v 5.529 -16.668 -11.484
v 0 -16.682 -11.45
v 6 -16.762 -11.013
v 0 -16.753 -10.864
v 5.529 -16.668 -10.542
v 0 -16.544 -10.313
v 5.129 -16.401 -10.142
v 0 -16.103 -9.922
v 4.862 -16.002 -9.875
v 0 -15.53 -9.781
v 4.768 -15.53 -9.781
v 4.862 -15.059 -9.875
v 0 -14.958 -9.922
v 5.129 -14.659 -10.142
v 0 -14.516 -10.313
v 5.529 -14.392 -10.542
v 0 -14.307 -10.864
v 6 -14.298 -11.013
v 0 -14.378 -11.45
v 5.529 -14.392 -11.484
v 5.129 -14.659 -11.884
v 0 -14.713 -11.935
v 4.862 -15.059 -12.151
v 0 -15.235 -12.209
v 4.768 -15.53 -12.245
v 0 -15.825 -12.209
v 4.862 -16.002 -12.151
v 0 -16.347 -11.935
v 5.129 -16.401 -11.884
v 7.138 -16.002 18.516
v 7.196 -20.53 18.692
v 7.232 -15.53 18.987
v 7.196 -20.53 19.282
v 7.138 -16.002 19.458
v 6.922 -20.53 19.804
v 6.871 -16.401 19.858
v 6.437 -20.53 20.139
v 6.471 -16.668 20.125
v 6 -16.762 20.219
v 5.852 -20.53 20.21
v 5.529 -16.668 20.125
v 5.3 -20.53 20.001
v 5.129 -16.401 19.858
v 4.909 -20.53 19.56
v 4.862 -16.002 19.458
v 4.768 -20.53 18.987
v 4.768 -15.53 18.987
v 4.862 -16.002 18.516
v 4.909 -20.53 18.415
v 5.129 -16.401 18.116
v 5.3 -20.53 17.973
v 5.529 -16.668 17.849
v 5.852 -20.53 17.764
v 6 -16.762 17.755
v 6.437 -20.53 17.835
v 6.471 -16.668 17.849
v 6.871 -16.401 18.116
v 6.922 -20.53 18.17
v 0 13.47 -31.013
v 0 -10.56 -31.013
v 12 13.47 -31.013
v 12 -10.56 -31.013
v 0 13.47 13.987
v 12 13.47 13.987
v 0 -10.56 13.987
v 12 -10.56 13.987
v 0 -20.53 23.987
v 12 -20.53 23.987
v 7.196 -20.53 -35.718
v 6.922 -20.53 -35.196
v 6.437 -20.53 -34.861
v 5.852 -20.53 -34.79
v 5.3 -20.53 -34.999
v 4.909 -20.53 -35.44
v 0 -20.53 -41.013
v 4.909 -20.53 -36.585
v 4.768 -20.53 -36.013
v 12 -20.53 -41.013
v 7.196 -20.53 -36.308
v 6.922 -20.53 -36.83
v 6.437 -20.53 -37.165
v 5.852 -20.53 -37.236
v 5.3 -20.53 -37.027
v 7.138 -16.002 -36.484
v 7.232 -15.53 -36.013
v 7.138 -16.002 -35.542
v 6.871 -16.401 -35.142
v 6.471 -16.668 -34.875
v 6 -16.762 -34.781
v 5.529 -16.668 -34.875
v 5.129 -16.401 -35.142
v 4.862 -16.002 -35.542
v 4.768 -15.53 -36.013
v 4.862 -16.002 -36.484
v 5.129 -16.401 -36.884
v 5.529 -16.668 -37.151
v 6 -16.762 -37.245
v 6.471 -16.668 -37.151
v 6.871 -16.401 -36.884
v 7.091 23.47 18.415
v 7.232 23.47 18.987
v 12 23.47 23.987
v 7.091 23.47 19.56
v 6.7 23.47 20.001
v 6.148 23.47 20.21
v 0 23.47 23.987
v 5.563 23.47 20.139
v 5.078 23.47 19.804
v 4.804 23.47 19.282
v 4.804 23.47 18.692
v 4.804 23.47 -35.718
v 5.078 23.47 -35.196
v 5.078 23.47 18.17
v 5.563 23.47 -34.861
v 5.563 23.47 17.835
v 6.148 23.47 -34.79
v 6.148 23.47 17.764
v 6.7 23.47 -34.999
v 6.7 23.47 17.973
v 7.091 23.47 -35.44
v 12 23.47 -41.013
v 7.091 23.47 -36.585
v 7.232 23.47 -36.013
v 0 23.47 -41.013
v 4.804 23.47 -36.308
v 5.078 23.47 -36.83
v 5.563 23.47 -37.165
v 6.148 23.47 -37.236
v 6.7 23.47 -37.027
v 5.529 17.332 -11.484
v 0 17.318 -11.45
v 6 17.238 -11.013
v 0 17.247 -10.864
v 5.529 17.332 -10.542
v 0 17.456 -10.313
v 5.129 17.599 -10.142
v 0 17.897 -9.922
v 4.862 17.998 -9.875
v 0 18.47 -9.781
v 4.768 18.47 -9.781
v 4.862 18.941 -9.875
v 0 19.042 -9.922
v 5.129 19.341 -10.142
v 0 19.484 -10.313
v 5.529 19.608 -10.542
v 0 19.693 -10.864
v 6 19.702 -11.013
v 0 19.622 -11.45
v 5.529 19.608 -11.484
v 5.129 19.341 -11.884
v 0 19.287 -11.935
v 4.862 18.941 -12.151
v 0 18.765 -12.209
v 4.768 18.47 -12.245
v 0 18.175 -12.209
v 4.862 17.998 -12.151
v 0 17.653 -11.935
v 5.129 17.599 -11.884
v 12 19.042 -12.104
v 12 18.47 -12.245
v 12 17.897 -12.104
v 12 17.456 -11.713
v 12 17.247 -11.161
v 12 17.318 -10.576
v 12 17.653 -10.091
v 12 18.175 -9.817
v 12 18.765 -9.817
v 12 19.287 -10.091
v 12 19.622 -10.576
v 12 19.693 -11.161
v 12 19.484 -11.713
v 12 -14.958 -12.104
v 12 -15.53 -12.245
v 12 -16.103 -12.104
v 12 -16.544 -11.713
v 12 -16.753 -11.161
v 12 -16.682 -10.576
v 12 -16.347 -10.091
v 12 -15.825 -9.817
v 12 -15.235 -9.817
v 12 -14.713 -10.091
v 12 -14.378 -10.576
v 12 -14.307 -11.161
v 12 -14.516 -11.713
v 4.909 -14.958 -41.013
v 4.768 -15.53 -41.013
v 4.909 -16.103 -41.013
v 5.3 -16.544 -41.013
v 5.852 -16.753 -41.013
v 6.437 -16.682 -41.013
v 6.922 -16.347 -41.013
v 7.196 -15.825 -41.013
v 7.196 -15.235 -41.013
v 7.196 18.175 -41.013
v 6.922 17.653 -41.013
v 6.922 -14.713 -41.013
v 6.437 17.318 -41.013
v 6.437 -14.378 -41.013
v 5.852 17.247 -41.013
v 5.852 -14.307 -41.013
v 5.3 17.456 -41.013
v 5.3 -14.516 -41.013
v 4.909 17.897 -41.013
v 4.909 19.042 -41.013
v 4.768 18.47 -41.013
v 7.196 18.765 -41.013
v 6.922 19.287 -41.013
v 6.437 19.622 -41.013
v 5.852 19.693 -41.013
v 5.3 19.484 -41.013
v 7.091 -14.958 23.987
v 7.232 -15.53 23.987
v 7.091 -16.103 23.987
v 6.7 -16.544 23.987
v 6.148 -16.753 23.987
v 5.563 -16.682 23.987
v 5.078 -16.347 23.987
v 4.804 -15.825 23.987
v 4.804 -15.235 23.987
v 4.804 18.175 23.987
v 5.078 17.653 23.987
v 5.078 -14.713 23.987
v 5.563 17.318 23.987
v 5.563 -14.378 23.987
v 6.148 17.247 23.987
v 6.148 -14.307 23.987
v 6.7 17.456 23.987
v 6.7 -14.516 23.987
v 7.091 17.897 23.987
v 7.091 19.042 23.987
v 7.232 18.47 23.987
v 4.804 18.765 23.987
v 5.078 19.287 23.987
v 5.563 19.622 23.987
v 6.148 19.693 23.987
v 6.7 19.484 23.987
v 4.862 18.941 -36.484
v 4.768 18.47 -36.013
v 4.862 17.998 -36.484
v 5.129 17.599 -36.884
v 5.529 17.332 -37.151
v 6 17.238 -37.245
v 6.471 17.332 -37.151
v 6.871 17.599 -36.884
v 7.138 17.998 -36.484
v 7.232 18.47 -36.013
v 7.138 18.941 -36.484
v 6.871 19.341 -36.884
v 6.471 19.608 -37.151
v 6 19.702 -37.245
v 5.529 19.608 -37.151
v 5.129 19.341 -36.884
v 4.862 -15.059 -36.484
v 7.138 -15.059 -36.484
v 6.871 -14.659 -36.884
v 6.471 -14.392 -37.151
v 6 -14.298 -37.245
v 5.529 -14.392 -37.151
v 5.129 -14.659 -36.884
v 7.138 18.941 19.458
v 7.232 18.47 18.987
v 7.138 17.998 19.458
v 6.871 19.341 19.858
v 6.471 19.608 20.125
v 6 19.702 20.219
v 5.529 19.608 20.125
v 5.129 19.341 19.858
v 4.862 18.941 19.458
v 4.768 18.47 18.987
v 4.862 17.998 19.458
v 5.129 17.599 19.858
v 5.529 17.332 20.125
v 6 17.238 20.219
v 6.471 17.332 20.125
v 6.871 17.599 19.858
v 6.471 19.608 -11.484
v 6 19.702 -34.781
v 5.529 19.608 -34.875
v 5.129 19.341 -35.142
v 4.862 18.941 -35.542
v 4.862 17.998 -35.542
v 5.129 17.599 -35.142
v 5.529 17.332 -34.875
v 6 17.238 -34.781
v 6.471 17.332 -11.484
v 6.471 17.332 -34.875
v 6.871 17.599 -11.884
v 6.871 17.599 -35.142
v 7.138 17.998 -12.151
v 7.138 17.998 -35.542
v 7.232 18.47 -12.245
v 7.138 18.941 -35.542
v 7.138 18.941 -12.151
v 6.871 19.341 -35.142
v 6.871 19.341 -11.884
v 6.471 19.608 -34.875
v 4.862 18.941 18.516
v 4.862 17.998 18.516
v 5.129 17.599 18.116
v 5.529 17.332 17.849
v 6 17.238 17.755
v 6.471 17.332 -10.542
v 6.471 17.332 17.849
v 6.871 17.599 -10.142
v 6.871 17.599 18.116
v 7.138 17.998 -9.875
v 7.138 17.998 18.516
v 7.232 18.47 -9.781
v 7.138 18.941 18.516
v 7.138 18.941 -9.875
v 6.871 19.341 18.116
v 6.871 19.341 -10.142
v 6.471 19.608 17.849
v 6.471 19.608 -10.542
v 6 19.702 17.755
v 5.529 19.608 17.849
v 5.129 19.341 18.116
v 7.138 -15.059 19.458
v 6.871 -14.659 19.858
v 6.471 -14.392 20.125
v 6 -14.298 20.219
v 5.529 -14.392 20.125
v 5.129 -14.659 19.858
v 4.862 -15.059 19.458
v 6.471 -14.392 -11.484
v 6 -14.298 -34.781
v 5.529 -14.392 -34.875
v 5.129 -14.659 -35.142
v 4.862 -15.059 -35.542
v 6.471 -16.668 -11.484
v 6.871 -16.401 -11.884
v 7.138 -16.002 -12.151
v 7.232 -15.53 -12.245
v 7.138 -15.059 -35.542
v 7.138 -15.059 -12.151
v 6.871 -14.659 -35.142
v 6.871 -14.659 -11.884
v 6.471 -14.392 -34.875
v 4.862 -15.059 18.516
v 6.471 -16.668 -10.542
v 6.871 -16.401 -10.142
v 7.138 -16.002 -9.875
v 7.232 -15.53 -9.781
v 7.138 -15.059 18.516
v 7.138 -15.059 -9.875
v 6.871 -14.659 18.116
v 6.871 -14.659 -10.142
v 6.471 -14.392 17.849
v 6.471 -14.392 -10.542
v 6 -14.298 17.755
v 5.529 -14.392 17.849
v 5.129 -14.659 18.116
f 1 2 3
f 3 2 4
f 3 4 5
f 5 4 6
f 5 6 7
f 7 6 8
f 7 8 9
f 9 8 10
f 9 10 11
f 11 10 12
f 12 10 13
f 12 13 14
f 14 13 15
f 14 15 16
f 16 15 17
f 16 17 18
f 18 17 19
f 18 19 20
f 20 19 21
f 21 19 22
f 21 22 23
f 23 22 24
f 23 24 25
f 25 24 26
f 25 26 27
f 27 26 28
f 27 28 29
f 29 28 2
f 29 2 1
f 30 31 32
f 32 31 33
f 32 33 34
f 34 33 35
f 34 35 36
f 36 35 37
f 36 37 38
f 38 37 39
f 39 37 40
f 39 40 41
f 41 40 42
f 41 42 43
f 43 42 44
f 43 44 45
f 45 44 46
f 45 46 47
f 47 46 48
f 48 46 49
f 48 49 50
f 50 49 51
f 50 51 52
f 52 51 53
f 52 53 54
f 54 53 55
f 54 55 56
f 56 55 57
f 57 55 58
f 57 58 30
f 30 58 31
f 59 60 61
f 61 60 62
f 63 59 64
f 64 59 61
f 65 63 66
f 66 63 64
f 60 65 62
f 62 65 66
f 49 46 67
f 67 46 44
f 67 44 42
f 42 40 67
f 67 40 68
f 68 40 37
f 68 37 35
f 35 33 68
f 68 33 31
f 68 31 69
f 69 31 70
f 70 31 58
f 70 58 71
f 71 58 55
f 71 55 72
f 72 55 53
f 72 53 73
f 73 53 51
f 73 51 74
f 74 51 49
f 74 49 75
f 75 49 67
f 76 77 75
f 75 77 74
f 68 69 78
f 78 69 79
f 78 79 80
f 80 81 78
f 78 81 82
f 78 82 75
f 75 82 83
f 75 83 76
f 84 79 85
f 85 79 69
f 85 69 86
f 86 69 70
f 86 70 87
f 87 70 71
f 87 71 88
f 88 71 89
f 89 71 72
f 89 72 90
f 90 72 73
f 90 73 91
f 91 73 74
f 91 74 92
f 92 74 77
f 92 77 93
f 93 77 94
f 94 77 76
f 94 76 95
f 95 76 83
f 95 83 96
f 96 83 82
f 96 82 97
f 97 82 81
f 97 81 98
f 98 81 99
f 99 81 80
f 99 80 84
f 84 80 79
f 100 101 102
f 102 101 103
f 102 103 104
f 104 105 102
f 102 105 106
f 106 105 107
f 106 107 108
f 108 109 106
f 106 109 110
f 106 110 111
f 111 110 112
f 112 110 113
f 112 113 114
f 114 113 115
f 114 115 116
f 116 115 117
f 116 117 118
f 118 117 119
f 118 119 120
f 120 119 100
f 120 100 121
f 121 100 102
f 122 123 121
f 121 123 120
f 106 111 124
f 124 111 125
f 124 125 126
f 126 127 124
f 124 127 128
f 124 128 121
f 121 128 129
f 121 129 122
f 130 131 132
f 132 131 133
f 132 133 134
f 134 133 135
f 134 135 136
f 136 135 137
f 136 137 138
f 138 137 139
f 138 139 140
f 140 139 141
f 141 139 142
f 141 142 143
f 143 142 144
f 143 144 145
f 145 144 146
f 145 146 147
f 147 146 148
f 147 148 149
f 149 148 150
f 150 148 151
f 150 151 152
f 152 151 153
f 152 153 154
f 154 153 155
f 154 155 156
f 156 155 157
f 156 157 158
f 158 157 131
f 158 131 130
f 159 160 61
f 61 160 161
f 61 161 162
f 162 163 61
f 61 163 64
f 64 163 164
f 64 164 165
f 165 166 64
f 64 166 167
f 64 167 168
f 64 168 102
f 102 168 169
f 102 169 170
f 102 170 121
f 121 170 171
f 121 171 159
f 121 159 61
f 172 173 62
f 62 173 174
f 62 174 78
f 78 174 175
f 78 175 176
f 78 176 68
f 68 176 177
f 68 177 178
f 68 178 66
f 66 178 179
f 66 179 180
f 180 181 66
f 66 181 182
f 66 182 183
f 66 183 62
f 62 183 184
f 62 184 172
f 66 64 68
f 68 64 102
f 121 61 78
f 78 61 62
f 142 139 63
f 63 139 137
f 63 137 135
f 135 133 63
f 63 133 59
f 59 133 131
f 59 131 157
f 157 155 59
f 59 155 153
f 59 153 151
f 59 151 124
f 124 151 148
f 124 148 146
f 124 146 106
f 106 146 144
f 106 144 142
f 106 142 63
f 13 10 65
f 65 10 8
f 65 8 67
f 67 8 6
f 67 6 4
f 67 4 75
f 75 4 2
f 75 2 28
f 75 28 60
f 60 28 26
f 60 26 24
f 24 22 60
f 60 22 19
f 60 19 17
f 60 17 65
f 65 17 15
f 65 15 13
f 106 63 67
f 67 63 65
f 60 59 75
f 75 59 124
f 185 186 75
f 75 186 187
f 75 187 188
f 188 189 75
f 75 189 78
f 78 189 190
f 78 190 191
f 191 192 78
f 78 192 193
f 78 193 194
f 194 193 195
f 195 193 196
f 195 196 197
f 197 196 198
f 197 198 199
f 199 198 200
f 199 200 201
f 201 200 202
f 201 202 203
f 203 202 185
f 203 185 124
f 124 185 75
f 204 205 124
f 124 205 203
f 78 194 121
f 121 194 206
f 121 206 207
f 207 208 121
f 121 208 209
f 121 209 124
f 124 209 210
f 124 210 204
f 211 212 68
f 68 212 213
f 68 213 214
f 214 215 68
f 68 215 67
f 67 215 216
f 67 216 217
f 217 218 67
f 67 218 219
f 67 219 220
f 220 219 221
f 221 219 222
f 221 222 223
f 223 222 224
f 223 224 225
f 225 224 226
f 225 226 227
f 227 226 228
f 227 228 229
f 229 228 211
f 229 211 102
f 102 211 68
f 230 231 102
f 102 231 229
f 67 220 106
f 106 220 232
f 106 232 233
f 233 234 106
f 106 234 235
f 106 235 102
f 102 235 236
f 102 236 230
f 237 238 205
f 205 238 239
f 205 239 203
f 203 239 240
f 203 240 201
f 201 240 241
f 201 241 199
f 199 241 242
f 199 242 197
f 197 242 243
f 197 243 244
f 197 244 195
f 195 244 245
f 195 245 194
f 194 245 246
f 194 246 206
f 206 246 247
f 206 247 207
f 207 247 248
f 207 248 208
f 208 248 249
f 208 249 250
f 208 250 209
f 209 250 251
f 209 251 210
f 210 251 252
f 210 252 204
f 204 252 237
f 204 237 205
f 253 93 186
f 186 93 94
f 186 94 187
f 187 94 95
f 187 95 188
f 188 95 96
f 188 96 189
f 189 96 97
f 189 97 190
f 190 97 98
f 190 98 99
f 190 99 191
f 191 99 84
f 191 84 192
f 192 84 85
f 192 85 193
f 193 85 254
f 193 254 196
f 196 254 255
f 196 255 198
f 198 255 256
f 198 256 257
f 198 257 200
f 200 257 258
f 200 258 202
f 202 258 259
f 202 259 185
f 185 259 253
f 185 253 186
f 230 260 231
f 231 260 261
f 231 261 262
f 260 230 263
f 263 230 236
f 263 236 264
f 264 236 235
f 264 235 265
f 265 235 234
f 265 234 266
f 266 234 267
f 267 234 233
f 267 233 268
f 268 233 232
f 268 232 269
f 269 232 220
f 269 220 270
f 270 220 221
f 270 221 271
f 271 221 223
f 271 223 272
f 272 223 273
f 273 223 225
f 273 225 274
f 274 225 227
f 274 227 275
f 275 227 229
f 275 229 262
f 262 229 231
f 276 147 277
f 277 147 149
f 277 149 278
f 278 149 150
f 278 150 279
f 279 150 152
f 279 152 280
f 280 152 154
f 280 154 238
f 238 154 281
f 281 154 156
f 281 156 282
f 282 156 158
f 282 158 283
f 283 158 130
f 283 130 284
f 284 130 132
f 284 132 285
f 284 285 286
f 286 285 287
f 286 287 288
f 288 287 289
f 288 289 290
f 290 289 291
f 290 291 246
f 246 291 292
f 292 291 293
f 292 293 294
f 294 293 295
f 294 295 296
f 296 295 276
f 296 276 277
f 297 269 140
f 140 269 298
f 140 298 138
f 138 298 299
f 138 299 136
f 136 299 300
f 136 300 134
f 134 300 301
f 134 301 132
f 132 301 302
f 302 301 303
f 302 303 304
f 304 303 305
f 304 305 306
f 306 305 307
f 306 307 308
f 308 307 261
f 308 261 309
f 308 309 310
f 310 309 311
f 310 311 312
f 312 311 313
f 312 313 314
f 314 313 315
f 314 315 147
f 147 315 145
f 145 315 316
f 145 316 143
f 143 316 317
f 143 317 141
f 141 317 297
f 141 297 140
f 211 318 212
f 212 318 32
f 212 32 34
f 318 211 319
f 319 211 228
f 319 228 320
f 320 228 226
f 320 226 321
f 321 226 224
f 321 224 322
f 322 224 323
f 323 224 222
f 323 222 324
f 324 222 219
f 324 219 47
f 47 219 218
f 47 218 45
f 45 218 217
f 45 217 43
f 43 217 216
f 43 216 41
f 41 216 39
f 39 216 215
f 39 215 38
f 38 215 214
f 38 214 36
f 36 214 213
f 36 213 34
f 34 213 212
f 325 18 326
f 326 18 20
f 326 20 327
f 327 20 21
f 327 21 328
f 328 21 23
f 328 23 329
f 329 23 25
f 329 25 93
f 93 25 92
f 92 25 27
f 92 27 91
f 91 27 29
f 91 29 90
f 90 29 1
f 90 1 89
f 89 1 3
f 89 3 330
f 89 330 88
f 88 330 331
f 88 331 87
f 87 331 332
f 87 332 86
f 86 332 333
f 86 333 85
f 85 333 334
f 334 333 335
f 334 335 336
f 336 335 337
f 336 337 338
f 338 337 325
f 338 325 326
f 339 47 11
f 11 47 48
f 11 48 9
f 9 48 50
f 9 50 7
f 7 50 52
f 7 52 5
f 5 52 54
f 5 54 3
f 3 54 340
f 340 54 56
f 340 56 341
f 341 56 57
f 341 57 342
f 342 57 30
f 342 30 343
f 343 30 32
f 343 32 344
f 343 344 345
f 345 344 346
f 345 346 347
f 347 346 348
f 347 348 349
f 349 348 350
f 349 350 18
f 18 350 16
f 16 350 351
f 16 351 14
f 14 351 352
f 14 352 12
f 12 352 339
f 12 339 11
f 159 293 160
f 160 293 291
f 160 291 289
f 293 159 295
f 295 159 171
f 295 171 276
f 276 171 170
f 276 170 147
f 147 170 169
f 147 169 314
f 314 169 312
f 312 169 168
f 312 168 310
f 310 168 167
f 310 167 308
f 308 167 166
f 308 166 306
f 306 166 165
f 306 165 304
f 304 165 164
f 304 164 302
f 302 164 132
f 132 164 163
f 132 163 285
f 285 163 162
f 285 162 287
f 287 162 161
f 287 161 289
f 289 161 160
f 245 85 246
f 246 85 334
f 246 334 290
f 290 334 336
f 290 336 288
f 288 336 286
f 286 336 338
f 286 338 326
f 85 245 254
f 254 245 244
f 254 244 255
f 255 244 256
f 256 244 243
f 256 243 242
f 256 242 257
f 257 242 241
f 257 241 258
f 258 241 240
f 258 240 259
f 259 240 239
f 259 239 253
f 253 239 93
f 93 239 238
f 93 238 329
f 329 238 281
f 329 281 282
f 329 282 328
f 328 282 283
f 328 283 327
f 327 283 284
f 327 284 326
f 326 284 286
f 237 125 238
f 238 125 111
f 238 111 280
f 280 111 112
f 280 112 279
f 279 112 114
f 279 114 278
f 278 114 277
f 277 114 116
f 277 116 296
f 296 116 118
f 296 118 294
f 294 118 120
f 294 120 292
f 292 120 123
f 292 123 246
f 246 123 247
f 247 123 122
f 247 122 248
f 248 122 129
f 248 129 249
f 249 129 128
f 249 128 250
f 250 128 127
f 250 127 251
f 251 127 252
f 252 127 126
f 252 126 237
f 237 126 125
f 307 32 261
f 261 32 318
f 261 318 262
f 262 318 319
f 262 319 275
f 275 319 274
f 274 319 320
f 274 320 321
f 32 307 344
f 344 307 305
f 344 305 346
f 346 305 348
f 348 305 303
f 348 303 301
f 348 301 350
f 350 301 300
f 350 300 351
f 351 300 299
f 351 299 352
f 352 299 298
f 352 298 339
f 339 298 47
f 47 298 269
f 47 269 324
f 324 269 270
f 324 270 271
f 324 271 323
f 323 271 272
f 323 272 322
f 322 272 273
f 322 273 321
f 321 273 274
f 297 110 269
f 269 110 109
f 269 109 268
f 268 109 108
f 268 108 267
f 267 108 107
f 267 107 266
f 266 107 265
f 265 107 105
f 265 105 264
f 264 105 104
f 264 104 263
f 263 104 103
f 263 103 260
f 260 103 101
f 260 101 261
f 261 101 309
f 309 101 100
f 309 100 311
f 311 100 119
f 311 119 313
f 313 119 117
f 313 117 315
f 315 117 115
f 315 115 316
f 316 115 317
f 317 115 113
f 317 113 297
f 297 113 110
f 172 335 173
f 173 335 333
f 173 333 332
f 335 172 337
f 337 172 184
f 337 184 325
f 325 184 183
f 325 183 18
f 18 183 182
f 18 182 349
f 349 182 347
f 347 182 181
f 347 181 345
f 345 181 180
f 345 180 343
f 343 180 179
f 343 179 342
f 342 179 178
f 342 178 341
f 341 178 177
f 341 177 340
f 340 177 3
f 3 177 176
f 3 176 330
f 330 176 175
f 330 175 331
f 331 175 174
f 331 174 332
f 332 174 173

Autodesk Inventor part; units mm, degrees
ref_plane "YZ Plane" through (0, 0, 0) normal (1, 0, 0) x (0, 1, 0)
ref_plane "XZ Plane" through (0, 0, 0) normal (0, 1, 0) x (-1, 0, 0)
ref_plane "XY Plane" through (0, 0, 0) normal (0, 0, 1) x (1, 0, 0)
sketch "Sketch1" plane through (0, 0, 0) normal (1, 0, 0) x (0, 1, 0)
  line L0 (23.4698, 23.9871) -> (-20.5302, 23.9871)
  line L1 (-20.5302, 23.9871) -> (-20.5302, -41.0129)
  line L2 (-20.5302, -41.0129) -> (23.4698, -41.0129)
  line L3 (23.4698, -41.0129) -> (23.4698, 23.9871)
  point P0 (0, 0)
  dimension "d0" = 44
  dimension "d1" = 65
extrude "Extrusion1" add sketch "Sketch1" along normal blind 12
sketch "Sketch2" plane through (12, 0, 0) normal (1, 0, 0) x (0, 0, -1)
  line L0 (-13.9871, 13.4698) -> (31.0129, 13.4698)
  line L1 (31.0129, 13.4698) -> (31.0129, -10.5602)
  line L2 (31.0129, -10.5602) -> (-13.9871, -10.5602)
  line L3 (-13.9871, -10.5602) -> (-13.9871, 13.4698)
  line L4 (41.0129, 23.4698) -> (-23.9871, 23.4698) projected
  line L5 (-23.9871, 23.4698) -> (-23.9871, -20.5302) projected
  point P0 (0, 0)
  dimension "d4" = 24.03
  dimension "d5" = 10
  dimension "d6" = 10
  dimension "d7" = 45
extrude "Extrusion2" cut sketch "Sketch2" against normal blind 50.1
sketch "Sketch3" plane through (12, 0, 0) normal (1, 0, 0) x (0, 0, -1)
  line L0 (-23.9871, -20.5302) -> (41.0129, -20.5302) projected
  line L1 (41.0129, 23.4698) -> (-23.9871, 23.4698) projected
  line L2 (41.0129, -20.5302) -> (41.0129, 23.4698) projected
  point P0 (0, 0)
  point P1 (11.0129, 18.4698)
  point P2 (11.0129, -15.5302)
  dimension "d10" = 0
  dimension "d11" = 5
  dimension "d12" = 5
  dimension "d13" = 30
hole "Hole1" at (12, 18.4698, -11.0129) at (12, -15.5302, -11.0129) direction (-1, 0, 0) diameter 2.4638 end through all
sketch "Sketch4" plane through (0, 23.4698, 23.9871) normal (0, 1, 0) x (1, 0, 0)
  line L0 (0, 0) -> (12, 0) projected
  line L1 (0, 65) -> (12, 65) projected
  line L2 (0, 65) -> (0, 0) projected
  point P0 (0, 23.9871)
  point P1 (6, 5)
  point P2 (6, 60)
  dimension "d21" = 0
  dimension "d22" = 5
  dimension "d23" = 5
  dimension "d24" = 6
hole "Hole2" at (6, 23.4698, 18.9871) at (6, 23.4698, -36.0129) direction (0, -1, 0) diameter 2.4638 end through all
sketch "Sketch5" plane through (0, -20.5302, 23.9871) normal (0, 0, 1) x (1, 0, 0)
  line L0 (0, 44) -> (12, 44) projected
  line L1 (0, 0) -> (12, 0) projected
  line L2 (0, 44) -> (0, 0) projected
  point P0 (0, 20.5302)
  point P1 (6, 5)
  point P2 (6, 39)
  dimension "d32" = 0
  dimension "d33" = 5
  dimension "d34" = 5
  dimension "d35" = 6
hole "Hole3" at (6, -15.5302, 23.9871) at (6, 18.4698, 23.9871) direction (0, 0, -1) diameter 2.4638 end through all
properties part number "LidarV4Mount"
